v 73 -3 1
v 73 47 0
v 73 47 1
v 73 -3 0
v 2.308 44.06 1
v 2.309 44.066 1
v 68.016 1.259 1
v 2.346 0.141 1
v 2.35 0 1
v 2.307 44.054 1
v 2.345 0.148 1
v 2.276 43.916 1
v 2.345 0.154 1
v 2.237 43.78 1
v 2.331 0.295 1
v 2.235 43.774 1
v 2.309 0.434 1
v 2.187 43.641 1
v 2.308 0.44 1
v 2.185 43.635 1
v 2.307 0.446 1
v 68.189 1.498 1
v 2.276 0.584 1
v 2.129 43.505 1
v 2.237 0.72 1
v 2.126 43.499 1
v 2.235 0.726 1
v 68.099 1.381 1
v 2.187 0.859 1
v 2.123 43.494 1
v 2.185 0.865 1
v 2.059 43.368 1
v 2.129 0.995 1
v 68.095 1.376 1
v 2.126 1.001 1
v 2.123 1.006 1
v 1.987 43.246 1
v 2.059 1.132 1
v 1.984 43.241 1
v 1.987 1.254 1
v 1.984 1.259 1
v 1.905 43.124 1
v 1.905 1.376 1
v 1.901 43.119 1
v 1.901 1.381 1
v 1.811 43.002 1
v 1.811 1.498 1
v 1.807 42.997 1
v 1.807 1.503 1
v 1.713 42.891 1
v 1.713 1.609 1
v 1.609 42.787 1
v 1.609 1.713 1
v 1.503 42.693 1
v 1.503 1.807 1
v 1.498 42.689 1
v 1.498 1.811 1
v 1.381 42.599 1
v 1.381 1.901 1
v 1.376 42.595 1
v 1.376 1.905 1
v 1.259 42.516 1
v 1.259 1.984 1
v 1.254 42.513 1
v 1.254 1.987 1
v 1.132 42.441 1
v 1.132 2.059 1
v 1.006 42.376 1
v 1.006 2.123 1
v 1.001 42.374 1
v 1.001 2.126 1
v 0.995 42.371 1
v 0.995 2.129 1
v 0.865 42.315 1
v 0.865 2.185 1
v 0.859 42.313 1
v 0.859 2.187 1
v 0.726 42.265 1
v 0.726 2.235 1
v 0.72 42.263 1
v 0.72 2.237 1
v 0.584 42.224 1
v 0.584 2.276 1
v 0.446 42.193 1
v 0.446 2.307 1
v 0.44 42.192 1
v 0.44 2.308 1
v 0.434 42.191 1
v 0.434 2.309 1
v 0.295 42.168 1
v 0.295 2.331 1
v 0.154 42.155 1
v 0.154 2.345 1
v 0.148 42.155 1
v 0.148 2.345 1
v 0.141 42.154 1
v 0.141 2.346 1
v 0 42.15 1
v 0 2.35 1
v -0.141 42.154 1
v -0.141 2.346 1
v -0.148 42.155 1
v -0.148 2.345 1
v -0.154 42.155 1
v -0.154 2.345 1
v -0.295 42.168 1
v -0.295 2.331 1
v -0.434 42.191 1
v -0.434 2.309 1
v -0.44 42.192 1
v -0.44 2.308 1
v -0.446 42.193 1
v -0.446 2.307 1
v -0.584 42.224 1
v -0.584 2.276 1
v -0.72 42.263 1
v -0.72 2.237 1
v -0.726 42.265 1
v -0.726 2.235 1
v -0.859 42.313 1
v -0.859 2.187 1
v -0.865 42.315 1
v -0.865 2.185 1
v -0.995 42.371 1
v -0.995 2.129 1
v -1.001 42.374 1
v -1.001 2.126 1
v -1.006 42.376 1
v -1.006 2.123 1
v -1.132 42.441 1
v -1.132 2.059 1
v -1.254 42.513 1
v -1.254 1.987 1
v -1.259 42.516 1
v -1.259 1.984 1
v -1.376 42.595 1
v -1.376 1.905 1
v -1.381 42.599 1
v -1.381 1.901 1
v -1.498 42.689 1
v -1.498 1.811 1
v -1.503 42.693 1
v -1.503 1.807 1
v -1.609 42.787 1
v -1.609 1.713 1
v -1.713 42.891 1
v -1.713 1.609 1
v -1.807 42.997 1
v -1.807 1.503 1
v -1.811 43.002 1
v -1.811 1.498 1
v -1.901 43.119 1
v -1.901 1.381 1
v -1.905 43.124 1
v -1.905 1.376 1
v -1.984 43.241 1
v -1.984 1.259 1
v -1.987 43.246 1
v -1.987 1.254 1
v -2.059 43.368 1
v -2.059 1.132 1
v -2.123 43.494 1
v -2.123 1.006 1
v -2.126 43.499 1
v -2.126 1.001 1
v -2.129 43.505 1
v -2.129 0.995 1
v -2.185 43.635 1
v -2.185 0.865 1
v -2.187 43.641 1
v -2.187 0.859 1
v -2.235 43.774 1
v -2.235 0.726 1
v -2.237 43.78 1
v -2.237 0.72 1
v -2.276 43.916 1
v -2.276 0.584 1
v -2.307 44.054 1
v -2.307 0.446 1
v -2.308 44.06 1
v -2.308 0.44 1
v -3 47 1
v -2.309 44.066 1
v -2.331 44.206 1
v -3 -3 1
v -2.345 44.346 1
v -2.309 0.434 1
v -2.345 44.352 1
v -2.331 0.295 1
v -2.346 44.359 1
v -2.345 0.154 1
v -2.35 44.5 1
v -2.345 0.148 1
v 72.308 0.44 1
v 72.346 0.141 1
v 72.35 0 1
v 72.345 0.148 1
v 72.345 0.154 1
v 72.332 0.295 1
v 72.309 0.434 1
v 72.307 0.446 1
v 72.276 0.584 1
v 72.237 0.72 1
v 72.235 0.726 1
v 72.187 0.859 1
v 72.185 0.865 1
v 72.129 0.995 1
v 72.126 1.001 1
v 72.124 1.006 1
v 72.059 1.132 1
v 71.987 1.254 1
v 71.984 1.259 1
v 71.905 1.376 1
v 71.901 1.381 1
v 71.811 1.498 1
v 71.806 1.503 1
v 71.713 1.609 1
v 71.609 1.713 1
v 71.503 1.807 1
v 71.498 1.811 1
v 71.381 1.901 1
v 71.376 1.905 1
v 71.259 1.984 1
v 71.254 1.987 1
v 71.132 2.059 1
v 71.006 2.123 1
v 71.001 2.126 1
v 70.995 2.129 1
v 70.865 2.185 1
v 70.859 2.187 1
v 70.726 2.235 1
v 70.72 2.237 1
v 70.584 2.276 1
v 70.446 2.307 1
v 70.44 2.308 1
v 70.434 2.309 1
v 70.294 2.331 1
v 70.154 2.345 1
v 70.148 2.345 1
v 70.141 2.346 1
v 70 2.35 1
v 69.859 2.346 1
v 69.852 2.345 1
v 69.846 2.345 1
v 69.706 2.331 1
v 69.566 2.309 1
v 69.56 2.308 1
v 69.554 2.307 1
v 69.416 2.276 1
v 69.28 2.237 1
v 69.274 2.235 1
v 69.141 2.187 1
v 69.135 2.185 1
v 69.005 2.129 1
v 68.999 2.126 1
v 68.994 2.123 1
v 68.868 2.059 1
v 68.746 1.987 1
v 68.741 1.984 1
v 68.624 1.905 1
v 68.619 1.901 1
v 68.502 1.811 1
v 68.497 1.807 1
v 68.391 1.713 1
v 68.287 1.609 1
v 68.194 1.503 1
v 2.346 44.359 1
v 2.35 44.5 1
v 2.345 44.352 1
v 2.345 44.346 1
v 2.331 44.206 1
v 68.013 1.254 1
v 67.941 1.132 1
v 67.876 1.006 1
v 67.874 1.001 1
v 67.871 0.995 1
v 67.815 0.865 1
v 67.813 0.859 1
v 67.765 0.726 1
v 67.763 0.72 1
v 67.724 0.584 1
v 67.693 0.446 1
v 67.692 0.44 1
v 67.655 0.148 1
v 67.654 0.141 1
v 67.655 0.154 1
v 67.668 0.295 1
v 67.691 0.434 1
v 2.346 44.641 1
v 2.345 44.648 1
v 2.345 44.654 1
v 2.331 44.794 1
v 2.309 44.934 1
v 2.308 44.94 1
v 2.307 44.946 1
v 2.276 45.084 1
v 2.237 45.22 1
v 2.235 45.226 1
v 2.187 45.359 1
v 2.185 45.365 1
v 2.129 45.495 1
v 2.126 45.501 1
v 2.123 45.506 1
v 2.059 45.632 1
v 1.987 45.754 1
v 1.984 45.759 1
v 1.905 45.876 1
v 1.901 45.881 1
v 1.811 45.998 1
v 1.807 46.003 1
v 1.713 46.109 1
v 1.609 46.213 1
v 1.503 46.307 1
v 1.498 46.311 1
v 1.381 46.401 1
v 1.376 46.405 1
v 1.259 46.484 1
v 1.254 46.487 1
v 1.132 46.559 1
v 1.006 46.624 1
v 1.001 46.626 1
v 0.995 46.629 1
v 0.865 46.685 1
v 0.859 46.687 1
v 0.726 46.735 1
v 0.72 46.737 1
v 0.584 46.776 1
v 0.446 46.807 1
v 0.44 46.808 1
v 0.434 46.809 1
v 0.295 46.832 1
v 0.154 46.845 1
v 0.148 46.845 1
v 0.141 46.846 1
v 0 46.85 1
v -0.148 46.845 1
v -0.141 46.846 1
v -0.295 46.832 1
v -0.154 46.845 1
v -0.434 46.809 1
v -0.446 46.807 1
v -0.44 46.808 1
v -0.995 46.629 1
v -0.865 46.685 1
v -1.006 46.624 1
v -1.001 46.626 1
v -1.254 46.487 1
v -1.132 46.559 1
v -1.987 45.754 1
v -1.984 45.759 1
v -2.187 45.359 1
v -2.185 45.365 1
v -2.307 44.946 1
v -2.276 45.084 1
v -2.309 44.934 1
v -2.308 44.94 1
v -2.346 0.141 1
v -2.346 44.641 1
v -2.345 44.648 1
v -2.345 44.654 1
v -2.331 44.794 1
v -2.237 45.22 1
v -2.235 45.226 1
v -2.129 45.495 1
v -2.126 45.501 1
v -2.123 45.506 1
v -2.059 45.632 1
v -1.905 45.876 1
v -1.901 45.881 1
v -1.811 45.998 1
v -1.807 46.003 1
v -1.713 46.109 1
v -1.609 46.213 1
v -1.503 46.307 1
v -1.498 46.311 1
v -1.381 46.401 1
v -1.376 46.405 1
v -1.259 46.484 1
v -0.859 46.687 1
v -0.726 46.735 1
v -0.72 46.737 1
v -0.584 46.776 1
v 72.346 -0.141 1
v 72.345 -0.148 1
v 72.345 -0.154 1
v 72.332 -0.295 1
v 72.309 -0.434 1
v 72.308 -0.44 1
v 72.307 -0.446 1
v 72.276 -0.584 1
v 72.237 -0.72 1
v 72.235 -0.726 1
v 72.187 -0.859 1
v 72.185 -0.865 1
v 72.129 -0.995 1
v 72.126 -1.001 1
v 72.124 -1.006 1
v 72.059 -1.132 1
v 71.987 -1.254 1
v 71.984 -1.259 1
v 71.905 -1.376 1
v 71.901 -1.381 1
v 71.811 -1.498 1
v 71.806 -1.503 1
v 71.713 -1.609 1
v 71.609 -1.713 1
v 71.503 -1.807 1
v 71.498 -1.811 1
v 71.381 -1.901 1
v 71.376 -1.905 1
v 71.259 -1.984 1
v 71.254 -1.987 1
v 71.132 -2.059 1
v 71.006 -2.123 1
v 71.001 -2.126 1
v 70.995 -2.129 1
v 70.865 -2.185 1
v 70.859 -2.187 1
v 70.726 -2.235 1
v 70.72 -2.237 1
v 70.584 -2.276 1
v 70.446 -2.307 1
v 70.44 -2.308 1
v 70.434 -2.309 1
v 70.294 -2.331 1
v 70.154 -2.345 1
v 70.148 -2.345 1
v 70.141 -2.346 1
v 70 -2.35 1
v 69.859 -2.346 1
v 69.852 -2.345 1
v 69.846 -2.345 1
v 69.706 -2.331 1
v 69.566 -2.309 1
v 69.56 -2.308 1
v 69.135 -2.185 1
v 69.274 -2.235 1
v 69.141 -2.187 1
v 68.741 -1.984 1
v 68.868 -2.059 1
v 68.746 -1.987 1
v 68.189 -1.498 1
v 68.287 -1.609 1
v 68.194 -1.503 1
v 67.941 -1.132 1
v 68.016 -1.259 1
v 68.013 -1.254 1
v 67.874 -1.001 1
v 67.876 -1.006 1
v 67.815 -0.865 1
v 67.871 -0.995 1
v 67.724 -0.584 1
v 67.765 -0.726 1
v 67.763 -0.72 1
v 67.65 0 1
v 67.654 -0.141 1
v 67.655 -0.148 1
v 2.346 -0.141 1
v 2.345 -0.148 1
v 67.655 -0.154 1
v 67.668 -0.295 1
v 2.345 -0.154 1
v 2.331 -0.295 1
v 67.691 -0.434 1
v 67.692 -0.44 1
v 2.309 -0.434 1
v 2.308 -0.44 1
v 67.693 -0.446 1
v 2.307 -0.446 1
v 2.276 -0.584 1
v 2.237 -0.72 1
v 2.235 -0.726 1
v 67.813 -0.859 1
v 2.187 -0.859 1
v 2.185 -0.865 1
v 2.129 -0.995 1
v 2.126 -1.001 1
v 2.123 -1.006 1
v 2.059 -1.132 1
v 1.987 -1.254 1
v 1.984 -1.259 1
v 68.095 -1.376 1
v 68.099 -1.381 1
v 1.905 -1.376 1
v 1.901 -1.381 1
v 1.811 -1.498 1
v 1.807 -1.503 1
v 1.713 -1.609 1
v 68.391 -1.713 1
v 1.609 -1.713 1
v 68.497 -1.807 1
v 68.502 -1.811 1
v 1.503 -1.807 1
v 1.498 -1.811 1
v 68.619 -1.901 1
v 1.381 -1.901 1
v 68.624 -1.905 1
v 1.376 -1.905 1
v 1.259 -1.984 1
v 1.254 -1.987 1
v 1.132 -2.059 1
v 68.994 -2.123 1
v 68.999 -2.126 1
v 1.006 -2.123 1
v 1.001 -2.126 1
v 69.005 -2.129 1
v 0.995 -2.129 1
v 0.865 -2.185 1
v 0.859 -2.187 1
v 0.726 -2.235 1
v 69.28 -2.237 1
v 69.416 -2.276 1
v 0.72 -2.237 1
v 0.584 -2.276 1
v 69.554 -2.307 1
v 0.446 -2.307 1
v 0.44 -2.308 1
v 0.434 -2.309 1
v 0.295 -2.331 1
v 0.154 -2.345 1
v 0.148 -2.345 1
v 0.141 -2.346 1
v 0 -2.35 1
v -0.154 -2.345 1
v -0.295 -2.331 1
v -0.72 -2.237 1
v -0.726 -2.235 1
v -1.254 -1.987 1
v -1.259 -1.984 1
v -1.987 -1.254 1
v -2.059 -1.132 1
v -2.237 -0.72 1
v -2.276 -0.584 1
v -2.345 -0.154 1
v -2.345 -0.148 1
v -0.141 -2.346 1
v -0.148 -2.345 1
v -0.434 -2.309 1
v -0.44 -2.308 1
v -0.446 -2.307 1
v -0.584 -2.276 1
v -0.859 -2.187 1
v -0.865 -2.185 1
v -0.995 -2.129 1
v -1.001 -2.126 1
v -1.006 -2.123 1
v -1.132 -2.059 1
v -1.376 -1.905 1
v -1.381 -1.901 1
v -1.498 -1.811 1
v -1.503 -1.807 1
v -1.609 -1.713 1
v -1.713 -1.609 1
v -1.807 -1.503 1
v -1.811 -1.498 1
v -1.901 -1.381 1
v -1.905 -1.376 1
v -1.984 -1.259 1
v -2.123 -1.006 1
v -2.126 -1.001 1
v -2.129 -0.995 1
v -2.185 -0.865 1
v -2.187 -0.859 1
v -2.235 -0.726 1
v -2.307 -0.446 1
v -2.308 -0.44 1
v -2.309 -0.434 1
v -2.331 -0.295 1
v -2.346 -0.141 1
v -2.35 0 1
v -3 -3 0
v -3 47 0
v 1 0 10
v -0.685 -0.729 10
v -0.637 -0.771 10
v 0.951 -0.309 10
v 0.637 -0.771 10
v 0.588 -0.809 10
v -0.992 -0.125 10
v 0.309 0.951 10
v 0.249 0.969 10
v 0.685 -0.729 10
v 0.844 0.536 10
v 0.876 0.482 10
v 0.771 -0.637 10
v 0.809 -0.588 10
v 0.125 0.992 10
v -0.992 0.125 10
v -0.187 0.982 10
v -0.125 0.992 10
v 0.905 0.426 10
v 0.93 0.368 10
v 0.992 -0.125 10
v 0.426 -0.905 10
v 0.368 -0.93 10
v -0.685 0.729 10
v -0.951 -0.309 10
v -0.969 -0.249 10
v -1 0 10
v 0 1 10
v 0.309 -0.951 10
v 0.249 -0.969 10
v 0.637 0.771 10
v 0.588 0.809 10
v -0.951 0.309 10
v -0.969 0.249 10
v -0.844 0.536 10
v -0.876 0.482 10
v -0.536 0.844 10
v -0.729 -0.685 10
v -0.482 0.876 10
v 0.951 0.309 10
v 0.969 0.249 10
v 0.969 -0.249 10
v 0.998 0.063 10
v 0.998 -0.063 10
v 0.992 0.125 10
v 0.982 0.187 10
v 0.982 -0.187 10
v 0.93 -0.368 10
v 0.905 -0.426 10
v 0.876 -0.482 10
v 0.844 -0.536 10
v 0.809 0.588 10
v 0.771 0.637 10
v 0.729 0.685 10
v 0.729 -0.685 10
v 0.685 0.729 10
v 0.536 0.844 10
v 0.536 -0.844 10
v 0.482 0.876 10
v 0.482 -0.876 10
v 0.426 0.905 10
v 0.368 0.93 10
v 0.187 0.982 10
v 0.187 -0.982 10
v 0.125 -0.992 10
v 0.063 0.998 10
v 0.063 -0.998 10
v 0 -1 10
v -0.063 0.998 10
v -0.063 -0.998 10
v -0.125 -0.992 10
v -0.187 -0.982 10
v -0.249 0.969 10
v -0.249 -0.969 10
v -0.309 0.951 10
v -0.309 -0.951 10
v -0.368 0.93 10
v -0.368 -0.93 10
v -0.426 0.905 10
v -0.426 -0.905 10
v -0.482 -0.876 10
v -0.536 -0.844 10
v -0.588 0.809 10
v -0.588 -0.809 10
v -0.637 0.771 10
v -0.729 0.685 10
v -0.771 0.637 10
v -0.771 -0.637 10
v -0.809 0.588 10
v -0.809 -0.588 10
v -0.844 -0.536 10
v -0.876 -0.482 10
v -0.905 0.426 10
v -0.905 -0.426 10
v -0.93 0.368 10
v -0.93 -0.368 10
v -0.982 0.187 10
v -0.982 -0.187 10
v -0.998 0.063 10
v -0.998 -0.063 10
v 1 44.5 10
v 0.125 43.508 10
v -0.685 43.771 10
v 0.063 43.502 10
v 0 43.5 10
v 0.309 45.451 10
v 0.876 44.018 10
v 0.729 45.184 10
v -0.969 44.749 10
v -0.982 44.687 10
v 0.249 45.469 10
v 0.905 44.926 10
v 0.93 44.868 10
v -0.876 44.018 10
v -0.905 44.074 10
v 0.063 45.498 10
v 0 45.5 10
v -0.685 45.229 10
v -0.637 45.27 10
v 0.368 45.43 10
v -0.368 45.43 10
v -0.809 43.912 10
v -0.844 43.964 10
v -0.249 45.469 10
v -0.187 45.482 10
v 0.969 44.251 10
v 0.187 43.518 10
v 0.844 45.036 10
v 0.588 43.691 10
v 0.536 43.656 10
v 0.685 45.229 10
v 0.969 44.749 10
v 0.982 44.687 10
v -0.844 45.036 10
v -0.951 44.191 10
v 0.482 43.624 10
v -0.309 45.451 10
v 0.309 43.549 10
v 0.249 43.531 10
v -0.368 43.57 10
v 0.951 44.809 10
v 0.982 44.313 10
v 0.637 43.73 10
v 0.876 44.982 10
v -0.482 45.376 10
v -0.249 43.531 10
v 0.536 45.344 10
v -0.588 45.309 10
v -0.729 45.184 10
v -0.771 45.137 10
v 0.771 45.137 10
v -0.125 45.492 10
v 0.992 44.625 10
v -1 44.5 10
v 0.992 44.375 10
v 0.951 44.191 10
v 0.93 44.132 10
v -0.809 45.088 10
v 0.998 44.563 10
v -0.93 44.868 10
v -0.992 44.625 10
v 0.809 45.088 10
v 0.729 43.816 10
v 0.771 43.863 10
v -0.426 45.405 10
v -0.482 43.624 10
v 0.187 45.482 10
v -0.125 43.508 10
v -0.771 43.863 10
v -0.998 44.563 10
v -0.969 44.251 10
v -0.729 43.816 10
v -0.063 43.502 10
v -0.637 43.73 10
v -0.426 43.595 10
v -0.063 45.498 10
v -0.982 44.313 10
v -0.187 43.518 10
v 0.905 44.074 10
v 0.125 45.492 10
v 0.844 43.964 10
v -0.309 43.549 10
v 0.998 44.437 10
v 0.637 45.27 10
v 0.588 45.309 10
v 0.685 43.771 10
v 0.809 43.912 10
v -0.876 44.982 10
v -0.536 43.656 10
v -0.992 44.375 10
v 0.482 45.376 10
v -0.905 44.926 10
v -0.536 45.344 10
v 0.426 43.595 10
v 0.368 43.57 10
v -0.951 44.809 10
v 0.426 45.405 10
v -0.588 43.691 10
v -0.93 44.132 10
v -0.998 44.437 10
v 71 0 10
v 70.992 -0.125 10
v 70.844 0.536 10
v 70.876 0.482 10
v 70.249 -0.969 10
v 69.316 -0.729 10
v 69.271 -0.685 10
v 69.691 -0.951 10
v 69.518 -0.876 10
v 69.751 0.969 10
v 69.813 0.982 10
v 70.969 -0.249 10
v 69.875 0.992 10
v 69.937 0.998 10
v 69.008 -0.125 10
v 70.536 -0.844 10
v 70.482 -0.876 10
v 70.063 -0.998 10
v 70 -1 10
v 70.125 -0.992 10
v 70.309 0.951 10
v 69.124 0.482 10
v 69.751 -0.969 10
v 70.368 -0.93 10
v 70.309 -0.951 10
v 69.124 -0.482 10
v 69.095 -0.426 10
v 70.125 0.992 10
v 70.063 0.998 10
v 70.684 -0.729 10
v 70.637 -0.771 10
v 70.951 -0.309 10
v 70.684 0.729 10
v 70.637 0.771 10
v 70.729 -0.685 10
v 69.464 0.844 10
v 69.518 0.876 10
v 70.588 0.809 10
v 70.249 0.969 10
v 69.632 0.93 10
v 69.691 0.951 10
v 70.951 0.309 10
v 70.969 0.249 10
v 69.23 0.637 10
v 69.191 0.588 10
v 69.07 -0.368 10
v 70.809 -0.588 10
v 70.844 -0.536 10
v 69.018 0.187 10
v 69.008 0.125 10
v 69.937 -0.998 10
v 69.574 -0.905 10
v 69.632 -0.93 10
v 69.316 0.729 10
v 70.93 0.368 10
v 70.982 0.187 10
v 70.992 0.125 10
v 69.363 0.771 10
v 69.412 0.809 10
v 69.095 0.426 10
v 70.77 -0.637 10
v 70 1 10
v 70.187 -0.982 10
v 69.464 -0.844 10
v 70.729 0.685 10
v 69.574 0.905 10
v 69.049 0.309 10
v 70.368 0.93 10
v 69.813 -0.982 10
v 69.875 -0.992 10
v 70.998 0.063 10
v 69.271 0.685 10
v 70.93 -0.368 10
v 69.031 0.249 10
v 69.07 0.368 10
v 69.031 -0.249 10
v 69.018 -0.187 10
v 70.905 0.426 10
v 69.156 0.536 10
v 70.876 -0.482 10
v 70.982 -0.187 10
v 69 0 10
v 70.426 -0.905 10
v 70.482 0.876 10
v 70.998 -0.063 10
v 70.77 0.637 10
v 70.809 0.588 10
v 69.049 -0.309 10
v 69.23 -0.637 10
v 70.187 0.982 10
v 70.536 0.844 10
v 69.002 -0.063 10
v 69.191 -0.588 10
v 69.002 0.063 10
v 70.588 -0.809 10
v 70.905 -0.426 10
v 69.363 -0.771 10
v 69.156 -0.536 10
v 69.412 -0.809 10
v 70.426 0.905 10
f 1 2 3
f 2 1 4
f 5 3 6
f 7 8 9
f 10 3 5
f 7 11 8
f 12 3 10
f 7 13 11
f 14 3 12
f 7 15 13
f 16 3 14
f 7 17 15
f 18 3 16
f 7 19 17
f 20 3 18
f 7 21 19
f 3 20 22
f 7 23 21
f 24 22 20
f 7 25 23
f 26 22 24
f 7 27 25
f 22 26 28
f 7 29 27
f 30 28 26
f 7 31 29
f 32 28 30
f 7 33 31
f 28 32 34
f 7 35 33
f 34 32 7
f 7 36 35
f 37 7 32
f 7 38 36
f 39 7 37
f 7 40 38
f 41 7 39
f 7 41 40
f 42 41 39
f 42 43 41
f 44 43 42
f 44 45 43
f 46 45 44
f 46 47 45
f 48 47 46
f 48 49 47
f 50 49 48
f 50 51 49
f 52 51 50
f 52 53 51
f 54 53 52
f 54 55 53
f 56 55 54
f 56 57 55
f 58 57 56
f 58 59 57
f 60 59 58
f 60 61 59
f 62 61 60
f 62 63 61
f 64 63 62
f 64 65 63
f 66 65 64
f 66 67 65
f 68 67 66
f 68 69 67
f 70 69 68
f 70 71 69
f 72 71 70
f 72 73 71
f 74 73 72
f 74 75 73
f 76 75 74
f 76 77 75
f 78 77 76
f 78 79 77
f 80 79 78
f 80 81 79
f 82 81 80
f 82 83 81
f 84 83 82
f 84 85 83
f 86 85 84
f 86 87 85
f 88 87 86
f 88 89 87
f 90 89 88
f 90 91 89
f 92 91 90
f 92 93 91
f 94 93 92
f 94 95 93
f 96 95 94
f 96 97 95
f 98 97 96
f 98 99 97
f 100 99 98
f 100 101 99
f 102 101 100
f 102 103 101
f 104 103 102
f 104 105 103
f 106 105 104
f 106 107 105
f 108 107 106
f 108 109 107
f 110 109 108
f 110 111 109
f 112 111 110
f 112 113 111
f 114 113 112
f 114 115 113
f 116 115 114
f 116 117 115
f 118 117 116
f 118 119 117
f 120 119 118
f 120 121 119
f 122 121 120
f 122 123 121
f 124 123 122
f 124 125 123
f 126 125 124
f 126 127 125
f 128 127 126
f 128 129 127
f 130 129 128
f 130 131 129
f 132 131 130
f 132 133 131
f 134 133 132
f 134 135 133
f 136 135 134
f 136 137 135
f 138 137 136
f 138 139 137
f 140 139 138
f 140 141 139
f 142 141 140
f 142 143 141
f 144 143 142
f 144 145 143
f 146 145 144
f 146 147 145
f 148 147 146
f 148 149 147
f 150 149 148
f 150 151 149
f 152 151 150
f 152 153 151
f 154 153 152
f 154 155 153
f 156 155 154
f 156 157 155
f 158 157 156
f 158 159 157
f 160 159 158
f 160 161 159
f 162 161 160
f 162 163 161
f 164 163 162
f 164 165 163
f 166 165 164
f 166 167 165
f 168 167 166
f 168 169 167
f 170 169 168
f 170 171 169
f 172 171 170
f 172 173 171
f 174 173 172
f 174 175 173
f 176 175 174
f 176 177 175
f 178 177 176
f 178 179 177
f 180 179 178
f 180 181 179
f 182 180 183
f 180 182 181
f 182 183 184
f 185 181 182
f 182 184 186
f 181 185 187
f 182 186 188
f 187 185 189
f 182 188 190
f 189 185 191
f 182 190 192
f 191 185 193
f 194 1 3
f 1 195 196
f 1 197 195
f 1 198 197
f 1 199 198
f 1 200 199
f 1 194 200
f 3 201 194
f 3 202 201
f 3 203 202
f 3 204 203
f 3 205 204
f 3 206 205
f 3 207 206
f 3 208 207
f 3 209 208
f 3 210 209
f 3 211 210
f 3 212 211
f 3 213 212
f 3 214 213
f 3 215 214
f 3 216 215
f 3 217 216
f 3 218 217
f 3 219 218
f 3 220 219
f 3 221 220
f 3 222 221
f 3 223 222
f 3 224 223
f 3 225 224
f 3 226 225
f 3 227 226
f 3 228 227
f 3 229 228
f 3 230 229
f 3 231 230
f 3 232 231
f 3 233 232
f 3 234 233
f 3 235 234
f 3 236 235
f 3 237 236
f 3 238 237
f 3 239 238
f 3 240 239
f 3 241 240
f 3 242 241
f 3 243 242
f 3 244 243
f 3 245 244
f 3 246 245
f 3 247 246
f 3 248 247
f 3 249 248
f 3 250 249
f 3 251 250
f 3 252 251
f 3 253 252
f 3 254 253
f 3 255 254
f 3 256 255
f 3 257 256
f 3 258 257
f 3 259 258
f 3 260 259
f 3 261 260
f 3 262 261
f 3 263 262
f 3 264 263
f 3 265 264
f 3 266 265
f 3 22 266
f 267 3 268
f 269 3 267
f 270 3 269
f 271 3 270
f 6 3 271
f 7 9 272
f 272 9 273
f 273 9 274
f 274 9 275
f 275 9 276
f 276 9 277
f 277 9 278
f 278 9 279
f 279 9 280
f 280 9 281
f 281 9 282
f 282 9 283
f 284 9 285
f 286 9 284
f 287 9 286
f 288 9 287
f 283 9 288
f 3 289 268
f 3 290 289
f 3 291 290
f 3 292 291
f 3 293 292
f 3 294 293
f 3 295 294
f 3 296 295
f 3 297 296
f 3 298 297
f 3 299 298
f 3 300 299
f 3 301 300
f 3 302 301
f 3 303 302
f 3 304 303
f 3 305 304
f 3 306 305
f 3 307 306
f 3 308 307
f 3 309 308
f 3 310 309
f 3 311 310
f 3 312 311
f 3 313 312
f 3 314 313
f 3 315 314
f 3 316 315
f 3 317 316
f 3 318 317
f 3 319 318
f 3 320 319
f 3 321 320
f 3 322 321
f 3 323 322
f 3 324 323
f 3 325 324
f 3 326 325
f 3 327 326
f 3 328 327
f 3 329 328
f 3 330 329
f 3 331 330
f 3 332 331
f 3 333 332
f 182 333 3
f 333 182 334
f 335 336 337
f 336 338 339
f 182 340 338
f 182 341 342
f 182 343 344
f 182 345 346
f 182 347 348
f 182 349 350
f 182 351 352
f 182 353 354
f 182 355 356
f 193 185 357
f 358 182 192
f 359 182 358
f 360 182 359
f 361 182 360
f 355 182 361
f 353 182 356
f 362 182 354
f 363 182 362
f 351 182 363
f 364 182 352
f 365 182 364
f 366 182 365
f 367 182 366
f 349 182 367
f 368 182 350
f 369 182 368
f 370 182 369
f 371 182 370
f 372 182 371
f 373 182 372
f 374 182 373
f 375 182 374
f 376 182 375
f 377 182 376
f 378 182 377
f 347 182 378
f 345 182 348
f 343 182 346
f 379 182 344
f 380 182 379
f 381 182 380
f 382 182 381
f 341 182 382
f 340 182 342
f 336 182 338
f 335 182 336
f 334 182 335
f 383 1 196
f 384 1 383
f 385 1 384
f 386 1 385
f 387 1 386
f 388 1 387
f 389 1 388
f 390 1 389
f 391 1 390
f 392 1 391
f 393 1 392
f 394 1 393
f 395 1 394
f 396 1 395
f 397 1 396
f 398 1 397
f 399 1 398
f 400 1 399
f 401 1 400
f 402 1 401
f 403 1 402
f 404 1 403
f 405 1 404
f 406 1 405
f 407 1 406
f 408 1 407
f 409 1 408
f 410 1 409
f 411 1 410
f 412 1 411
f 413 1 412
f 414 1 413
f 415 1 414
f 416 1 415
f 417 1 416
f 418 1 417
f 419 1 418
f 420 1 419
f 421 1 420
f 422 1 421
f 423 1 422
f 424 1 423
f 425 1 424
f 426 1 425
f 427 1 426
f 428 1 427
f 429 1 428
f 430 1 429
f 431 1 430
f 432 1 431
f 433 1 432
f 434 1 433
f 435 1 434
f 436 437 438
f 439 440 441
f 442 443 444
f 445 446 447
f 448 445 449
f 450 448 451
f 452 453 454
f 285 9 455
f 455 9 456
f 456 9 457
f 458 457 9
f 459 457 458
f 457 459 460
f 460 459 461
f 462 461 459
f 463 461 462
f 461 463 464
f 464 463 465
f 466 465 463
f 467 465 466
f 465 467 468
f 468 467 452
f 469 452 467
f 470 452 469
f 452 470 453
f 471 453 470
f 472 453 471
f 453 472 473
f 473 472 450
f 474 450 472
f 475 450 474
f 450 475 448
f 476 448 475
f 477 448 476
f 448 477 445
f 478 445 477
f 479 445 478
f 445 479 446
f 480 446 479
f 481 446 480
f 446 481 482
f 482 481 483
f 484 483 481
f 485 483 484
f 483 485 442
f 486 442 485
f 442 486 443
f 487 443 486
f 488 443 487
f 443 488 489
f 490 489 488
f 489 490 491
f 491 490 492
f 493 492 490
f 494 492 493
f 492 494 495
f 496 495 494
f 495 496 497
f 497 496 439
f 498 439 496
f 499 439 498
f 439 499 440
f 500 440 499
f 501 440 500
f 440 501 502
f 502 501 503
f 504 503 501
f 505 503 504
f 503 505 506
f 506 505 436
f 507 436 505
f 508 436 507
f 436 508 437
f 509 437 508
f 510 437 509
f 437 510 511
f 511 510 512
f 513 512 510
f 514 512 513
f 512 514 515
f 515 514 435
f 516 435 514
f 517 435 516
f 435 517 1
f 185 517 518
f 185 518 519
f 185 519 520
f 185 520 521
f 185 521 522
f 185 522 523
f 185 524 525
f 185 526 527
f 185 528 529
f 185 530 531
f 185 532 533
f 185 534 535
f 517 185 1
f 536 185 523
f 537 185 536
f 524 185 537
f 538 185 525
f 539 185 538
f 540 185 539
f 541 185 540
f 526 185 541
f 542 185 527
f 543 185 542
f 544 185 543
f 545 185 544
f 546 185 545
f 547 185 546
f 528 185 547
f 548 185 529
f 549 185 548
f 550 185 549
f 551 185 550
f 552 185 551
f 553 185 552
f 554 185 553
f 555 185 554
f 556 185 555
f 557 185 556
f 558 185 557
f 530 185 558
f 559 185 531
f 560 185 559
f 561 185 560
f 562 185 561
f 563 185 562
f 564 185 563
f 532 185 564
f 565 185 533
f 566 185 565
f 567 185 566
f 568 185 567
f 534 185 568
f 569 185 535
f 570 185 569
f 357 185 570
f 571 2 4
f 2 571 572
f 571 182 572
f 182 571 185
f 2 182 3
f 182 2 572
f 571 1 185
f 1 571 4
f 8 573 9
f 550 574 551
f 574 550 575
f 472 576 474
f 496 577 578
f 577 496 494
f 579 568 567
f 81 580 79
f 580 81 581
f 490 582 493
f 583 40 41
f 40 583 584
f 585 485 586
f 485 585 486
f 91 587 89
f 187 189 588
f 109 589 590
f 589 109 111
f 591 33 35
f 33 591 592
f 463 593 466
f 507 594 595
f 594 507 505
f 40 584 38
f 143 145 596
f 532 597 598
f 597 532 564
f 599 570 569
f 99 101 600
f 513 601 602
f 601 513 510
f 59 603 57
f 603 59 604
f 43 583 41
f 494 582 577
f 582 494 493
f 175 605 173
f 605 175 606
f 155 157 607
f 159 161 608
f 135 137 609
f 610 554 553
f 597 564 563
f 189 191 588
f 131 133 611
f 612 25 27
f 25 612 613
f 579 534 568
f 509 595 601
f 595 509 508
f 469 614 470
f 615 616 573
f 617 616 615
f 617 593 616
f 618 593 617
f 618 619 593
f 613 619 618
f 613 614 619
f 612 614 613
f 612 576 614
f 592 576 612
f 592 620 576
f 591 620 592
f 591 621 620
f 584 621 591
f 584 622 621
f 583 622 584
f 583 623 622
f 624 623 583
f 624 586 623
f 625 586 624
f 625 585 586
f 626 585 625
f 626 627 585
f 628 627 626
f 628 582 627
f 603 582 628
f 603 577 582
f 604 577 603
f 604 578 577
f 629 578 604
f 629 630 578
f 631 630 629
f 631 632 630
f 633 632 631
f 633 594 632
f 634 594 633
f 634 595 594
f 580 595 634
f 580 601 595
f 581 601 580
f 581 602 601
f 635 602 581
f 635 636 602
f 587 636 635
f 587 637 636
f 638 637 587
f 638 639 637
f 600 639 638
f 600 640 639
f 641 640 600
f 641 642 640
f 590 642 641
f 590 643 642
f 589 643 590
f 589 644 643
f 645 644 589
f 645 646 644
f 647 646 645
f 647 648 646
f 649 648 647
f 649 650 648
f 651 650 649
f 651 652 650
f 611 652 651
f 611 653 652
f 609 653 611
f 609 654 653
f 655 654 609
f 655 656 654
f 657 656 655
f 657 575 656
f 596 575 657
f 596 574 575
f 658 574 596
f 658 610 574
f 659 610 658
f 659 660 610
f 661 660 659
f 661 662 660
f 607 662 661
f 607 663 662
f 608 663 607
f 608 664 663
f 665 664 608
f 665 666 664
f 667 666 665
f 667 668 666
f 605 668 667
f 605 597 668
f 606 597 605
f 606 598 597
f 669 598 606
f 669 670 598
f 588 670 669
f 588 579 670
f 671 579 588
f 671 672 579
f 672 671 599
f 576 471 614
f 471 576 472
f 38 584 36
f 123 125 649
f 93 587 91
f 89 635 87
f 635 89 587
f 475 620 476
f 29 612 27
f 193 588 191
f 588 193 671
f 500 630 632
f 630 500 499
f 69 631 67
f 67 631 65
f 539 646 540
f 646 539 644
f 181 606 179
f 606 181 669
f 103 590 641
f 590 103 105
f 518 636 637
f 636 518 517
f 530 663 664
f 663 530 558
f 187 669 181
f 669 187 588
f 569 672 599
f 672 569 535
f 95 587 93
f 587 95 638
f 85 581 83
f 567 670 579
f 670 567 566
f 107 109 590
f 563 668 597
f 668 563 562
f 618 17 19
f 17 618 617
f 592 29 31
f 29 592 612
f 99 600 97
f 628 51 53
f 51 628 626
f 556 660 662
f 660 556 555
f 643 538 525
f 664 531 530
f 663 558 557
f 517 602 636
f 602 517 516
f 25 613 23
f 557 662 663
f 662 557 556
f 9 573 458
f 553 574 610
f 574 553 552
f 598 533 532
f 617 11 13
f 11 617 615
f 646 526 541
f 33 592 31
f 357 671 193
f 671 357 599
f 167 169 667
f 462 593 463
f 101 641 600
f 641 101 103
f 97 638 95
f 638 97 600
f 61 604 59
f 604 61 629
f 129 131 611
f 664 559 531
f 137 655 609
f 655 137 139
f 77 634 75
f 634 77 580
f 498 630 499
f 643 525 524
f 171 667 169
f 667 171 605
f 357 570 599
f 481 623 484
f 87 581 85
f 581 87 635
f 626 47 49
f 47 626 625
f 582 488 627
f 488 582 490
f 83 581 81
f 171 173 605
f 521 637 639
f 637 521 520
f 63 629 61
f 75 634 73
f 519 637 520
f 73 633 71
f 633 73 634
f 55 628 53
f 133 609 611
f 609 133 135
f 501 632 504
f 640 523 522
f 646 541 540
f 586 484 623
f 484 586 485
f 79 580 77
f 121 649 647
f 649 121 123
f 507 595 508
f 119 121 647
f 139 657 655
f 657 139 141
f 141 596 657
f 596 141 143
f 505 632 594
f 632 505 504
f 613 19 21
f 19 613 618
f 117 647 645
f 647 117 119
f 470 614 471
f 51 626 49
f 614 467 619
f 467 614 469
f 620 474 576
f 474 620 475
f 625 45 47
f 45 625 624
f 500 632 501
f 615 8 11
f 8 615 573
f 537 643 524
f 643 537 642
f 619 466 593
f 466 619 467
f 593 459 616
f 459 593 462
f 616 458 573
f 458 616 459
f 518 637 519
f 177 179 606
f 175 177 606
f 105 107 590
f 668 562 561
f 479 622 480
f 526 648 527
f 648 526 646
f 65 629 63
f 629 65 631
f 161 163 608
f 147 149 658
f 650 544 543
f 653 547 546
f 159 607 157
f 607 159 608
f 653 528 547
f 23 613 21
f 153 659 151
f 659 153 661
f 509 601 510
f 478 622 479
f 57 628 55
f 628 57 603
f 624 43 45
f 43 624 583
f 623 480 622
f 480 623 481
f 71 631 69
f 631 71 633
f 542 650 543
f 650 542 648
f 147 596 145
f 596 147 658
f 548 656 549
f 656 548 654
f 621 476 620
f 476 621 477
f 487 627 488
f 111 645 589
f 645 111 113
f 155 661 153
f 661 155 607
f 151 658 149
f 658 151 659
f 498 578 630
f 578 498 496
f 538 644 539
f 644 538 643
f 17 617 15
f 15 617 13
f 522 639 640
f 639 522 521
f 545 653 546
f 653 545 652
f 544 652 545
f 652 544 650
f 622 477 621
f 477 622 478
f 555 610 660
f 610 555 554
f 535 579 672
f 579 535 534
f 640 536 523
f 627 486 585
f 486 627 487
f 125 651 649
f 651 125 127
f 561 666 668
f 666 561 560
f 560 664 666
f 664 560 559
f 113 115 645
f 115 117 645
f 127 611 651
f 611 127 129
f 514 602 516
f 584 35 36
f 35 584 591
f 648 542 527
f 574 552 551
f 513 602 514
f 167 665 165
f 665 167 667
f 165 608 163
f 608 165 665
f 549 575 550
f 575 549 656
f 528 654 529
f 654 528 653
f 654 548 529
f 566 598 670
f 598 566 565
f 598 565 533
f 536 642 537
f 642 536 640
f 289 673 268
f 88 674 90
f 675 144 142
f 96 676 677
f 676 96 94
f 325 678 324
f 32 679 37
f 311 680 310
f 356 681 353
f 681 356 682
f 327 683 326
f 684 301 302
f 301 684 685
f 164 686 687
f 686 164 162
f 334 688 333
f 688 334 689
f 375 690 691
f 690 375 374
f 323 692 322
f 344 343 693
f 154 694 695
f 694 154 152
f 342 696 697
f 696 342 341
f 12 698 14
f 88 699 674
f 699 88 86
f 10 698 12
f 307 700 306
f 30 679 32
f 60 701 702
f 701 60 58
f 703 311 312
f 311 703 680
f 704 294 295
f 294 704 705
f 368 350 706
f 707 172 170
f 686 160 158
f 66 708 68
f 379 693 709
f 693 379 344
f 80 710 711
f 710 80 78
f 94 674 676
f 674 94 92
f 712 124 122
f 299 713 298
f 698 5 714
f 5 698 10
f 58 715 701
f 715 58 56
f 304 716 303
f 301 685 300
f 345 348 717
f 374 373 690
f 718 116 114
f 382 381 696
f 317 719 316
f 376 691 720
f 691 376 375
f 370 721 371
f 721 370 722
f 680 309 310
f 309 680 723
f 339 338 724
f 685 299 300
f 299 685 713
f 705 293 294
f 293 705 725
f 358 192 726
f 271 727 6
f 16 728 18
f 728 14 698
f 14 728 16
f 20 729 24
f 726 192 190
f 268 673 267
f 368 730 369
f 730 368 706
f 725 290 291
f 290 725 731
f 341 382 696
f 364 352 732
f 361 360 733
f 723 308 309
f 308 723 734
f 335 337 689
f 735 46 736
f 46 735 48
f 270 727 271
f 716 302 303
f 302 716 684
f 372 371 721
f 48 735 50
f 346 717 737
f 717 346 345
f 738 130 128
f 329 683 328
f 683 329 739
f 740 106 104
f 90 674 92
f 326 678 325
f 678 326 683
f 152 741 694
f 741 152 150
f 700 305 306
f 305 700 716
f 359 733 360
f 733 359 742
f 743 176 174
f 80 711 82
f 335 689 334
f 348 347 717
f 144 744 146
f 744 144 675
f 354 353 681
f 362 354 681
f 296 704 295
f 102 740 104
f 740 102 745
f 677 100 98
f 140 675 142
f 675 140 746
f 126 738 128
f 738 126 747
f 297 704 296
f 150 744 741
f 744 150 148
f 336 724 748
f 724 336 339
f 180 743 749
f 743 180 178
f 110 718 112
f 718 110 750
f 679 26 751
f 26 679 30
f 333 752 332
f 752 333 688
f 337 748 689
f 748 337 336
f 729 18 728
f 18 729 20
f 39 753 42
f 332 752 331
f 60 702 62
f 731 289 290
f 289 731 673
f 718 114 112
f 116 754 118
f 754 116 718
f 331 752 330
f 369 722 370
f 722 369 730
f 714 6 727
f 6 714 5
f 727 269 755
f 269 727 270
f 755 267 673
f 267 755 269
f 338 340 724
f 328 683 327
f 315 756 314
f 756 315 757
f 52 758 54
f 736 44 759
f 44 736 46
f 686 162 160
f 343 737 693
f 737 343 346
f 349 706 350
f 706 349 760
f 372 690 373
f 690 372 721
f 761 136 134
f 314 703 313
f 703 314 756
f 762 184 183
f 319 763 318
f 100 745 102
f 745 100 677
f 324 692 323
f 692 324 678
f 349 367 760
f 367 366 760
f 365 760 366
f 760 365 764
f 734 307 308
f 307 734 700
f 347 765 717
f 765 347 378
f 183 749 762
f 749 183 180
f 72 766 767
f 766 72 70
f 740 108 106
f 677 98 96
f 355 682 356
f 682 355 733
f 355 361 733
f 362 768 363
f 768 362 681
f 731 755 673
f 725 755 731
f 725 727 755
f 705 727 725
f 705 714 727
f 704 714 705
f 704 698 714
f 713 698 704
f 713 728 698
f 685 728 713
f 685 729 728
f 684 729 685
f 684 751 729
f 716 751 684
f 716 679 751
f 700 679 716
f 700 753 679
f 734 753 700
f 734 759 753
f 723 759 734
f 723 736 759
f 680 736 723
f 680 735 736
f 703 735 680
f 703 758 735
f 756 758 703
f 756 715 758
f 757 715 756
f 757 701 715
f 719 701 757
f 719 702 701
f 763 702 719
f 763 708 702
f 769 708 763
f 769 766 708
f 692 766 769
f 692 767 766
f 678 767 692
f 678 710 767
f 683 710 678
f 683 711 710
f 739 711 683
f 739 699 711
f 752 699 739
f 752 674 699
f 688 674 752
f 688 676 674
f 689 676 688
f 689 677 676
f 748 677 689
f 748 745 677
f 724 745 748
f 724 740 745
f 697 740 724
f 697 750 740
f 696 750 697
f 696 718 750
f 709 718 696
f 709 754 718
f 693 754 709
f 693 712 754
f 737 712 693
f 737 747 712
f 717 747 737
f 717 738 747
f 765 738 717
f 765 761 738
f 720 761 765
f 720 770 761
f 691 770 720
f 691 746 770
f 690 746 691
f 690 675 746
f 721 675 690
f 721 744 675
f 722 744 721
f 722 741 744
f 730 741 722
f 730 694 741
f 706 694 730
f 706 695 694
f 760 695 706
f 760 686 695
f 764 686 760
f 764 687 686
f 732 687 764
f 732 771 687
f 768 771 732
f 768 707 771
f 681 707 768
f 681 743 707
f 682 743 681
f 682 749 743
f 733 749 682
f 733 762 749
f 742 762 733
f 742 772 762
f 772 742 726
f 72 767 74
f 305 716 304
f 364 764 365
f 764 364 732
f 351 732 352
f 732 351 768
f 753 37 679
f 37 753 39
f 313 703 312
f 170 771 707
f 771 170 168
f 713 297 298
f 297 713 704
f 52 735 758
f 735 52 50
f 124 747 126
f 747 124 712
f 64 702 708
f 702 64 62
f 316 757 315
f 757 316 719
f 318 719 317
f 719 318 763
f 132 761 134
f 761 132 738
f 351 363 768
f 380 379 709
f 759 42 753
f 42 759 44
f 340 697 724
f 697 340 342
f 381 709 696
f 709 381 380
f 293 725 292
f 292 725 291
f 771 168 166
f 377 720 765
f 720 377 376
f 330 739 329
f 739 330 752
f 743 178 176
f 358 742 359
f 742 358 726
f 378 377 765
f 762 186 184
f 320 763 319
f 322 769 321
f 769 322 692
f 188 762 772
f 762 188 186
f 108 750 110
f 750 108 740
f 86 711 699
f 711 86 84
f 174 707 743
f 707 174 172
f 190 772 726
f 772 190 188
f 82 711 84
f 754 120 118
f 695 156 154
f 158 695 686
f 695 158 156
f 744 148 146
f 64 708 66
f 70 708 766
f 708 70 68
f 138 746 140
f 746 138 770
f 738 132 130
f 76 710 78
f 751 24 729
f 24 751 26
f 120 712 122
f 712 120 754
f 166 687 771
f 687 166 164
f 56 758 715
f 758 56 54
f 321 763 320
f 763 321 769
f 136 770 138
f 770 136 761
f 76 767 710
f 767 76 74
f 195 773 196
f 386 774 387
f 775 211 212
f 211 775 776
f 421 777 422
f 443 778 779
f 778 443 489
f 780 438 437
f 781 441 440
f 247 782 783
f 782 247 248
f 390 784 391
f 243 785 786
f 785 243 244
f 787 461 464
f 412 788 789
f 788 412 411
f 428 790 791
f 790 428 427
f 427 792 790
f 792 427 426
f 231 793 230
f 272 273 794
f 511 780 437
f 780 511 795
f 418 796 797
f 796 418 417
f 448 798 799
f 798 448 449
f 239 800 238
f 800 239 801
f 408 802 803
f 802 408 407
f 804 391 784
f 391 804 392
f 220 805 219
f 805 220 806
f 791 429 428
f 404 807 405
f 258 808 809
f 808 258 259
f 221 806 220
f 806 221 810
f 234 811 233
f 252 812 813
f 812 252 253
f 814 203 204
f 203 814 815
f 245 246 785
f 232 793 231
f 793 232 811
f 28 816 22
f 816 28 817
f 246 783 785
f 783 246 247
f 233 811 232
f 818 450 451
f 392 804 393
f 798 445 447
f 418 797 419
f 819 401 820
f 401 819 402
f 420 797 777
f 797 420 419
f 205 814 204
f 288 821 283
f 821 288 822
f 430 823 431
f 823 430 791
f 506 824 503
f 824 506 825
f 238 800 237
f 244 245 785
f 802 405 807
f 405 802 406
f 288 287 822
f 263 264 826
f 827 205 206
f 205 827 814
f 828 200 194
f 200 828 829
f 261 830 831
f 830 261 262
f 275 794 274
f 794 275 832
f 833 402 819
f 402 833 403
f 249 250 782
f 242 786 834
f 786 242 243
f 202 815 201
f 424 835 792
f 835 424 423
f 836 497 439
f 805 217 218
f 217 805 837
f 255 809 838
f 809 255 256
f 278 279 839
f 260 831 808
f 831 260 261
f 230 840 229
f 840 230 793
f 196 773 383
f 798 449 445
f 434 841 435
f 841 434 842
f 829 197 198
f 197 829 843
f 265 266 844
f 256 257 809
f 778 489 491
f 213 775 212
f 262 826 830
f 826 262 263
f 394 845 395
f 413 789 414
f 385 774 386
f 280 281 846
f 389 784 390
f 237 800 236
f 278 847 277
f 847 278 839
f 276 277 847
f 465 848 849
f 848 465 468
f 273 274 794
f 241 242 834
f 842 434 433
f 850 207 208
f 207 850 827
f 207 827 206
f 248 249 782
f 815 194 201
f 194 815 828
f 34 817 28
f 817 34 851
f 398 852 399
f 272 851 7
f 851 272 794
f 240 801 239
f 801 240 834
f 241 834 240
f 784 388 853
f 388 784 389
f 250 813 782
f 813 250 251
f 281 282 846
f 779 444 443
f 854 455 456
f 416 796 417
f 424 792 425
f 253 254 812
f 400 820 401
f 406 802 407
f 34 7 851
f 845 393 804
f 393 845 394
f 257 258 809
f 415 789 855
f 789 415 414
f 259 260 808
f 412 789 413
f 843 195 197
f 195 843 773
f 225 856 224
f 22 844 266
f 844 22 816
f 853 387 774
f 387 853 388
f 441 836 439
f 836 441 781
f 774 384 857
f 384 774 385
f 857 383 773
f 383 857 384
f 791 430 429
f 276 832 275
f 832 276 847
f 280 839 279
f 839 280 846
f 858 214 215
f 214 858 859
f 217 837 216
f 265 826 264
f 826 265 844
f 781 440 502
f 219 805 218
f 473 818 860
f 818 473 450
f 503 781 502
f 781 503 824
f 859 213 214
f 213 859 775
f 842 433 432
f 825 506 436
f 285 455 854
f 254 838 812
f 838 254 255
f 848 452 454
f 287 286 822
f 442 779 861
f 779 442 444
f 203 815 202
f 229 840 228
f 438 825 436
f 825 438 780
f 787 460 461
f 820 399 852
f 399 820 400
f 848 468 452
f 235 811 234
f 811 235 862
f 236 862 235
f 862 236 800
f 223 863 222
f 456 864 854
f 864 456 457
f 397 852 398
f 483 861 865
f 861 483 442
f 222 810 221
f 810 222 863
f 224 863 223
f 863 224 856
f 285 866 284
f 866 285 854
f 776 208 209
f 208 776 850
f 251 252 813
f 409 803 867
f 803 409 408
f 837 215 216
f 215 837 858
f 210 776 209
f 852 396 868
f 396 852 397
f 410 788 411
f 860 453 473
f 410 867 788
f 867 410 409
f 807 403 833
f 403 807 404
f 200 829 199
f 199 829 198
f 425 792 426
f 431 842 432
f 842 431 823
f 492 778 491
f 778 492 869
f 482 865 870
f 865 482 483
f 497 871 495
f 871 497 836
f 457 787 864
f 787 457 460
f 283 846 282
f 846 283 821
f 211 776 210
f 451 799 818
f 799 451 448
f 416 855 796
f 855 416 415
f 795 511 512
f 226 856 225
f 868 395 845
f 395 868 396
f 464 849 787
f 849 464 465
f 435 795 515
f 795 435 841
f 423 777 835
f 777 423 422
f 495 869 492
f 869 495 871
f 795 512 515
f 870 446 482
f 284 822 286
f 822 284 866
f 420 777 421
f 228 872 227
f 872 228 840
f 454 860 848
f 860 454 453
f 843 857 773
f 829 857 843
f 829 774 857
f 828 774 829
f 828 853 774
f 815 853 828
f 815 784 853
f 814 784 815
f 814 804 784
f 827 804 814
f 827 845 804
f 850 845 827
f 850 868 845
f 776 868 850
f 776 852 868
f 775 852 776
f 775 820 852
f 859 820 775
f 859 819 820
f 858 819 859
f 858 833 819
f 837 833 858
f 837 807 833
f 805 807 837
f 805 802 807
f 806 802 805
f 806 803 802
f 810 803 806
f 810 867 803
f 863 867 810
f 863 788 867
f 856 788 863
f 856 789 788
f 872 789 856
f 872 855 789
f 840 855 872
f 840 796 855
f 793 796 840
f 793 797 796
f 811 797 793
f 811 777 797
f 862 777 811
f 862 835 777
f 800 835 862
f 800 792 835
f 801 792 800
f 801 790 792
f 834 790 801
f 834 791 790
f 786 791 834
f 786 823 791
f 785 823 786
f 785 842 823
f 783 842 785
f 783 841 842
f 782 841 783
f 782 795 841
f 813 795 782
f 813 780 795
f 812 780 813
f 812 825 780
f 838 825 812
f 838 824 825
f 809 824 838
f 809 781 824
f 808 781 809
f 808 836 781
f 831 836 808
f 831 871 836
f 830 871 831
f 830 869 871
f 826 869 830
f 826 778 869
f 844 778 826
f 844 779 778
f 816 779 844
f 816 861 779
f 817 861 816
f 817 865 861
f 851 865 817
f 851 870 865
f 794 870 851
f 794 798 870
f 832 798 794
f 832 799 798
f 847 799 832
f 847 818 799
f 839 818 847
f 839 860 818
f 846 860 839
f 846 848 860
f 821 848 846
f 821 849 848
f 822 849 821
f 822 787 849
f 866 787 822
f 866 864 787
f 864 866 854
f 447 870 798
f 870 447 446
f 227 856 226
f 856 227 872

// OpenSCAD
$fn = 100 ;
module toggleSwitch() {
    //twiddle the position a bit to account for material etc
    twiddle = [0,0,1] ;
    upperD = 6 ; upperH = 8.5 ;
    nutH   = 2 ; nutD   = 8 ;
    toggleH = 10 ; toggleD =1.5 ; toggleAngle = 10 ;
    toggleBody = [12.7,13.3,14] ; toggleBodyOff = [0,0,toggleBody.z/2] ;
    totH = toggleBody.z + upperH ;
    translate([0,0,-totH + nutH] + twiddle) {
        //Nut
        translate([0,0,toggleBody.z + upperH - nutH]) cylinder(h=nutH , d=nutD,$fn=6);
        //upper part
        cylinder(h=upperH + toggleBody.z, d=upperD);
        //toggle
        translate([0,0,toggleBody.z + upperH]) rotate([-toggleAngle,0,0]) cylinder(h=toggleH, d=toggleD);
        translate(toggleBodyOff) cube(toggleBody,center=true);
    }
}
//toggleSwitch();

module pin() {
    pinH = 10 ; pinD1 =5 ; pinD2 = 2;
    cylinder(h = pinH, d1 = pinD1, d2 = pinD2);
}

translate([-3,-3,0]) cube([76,50,1]);
translate([0,0,0]) pin();
translate([0,44.5,0]) pin();
translate([70,0,0]) pin();
